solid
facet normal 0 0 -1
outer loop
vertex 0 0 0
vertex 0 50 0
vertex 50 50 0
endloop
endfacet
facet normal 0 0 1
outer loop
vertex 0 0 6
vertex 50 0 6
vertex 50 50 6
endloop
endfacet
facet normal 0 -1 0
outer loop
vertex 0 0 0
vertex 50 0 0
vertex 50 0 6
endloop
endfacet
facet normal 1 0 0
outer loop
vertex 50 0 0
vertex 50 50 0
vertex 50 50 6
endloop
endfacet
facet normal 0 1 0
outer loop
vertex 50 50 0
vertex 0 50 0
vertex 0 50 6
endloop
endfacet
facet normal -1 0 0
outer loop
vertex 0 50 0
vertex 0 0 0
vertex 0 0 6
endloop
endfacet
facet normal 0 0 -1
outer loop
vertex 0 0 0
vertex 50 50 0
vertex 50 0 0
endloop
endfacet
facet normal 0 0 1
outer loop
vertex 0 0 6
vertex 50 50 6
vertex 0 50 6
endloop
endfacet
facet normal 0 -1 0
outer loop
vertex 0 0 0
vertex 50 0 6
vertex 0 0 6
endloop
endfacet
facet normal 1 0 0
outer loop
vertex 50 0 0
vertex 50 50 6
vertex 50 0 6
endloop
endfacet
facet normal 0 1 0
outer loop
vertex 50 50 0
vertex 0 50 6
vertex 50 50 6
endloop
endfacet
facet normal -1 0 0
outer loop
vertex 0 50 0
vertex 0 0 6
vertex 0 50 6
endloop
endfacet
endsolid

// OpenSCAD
// Original MechIntel educational model. CC0-1.0. Units: mm.
// Not a standardized or load-rated component.
$fn=96;
length=50;
width=50;
height=6;
cube([length,width,height]);
